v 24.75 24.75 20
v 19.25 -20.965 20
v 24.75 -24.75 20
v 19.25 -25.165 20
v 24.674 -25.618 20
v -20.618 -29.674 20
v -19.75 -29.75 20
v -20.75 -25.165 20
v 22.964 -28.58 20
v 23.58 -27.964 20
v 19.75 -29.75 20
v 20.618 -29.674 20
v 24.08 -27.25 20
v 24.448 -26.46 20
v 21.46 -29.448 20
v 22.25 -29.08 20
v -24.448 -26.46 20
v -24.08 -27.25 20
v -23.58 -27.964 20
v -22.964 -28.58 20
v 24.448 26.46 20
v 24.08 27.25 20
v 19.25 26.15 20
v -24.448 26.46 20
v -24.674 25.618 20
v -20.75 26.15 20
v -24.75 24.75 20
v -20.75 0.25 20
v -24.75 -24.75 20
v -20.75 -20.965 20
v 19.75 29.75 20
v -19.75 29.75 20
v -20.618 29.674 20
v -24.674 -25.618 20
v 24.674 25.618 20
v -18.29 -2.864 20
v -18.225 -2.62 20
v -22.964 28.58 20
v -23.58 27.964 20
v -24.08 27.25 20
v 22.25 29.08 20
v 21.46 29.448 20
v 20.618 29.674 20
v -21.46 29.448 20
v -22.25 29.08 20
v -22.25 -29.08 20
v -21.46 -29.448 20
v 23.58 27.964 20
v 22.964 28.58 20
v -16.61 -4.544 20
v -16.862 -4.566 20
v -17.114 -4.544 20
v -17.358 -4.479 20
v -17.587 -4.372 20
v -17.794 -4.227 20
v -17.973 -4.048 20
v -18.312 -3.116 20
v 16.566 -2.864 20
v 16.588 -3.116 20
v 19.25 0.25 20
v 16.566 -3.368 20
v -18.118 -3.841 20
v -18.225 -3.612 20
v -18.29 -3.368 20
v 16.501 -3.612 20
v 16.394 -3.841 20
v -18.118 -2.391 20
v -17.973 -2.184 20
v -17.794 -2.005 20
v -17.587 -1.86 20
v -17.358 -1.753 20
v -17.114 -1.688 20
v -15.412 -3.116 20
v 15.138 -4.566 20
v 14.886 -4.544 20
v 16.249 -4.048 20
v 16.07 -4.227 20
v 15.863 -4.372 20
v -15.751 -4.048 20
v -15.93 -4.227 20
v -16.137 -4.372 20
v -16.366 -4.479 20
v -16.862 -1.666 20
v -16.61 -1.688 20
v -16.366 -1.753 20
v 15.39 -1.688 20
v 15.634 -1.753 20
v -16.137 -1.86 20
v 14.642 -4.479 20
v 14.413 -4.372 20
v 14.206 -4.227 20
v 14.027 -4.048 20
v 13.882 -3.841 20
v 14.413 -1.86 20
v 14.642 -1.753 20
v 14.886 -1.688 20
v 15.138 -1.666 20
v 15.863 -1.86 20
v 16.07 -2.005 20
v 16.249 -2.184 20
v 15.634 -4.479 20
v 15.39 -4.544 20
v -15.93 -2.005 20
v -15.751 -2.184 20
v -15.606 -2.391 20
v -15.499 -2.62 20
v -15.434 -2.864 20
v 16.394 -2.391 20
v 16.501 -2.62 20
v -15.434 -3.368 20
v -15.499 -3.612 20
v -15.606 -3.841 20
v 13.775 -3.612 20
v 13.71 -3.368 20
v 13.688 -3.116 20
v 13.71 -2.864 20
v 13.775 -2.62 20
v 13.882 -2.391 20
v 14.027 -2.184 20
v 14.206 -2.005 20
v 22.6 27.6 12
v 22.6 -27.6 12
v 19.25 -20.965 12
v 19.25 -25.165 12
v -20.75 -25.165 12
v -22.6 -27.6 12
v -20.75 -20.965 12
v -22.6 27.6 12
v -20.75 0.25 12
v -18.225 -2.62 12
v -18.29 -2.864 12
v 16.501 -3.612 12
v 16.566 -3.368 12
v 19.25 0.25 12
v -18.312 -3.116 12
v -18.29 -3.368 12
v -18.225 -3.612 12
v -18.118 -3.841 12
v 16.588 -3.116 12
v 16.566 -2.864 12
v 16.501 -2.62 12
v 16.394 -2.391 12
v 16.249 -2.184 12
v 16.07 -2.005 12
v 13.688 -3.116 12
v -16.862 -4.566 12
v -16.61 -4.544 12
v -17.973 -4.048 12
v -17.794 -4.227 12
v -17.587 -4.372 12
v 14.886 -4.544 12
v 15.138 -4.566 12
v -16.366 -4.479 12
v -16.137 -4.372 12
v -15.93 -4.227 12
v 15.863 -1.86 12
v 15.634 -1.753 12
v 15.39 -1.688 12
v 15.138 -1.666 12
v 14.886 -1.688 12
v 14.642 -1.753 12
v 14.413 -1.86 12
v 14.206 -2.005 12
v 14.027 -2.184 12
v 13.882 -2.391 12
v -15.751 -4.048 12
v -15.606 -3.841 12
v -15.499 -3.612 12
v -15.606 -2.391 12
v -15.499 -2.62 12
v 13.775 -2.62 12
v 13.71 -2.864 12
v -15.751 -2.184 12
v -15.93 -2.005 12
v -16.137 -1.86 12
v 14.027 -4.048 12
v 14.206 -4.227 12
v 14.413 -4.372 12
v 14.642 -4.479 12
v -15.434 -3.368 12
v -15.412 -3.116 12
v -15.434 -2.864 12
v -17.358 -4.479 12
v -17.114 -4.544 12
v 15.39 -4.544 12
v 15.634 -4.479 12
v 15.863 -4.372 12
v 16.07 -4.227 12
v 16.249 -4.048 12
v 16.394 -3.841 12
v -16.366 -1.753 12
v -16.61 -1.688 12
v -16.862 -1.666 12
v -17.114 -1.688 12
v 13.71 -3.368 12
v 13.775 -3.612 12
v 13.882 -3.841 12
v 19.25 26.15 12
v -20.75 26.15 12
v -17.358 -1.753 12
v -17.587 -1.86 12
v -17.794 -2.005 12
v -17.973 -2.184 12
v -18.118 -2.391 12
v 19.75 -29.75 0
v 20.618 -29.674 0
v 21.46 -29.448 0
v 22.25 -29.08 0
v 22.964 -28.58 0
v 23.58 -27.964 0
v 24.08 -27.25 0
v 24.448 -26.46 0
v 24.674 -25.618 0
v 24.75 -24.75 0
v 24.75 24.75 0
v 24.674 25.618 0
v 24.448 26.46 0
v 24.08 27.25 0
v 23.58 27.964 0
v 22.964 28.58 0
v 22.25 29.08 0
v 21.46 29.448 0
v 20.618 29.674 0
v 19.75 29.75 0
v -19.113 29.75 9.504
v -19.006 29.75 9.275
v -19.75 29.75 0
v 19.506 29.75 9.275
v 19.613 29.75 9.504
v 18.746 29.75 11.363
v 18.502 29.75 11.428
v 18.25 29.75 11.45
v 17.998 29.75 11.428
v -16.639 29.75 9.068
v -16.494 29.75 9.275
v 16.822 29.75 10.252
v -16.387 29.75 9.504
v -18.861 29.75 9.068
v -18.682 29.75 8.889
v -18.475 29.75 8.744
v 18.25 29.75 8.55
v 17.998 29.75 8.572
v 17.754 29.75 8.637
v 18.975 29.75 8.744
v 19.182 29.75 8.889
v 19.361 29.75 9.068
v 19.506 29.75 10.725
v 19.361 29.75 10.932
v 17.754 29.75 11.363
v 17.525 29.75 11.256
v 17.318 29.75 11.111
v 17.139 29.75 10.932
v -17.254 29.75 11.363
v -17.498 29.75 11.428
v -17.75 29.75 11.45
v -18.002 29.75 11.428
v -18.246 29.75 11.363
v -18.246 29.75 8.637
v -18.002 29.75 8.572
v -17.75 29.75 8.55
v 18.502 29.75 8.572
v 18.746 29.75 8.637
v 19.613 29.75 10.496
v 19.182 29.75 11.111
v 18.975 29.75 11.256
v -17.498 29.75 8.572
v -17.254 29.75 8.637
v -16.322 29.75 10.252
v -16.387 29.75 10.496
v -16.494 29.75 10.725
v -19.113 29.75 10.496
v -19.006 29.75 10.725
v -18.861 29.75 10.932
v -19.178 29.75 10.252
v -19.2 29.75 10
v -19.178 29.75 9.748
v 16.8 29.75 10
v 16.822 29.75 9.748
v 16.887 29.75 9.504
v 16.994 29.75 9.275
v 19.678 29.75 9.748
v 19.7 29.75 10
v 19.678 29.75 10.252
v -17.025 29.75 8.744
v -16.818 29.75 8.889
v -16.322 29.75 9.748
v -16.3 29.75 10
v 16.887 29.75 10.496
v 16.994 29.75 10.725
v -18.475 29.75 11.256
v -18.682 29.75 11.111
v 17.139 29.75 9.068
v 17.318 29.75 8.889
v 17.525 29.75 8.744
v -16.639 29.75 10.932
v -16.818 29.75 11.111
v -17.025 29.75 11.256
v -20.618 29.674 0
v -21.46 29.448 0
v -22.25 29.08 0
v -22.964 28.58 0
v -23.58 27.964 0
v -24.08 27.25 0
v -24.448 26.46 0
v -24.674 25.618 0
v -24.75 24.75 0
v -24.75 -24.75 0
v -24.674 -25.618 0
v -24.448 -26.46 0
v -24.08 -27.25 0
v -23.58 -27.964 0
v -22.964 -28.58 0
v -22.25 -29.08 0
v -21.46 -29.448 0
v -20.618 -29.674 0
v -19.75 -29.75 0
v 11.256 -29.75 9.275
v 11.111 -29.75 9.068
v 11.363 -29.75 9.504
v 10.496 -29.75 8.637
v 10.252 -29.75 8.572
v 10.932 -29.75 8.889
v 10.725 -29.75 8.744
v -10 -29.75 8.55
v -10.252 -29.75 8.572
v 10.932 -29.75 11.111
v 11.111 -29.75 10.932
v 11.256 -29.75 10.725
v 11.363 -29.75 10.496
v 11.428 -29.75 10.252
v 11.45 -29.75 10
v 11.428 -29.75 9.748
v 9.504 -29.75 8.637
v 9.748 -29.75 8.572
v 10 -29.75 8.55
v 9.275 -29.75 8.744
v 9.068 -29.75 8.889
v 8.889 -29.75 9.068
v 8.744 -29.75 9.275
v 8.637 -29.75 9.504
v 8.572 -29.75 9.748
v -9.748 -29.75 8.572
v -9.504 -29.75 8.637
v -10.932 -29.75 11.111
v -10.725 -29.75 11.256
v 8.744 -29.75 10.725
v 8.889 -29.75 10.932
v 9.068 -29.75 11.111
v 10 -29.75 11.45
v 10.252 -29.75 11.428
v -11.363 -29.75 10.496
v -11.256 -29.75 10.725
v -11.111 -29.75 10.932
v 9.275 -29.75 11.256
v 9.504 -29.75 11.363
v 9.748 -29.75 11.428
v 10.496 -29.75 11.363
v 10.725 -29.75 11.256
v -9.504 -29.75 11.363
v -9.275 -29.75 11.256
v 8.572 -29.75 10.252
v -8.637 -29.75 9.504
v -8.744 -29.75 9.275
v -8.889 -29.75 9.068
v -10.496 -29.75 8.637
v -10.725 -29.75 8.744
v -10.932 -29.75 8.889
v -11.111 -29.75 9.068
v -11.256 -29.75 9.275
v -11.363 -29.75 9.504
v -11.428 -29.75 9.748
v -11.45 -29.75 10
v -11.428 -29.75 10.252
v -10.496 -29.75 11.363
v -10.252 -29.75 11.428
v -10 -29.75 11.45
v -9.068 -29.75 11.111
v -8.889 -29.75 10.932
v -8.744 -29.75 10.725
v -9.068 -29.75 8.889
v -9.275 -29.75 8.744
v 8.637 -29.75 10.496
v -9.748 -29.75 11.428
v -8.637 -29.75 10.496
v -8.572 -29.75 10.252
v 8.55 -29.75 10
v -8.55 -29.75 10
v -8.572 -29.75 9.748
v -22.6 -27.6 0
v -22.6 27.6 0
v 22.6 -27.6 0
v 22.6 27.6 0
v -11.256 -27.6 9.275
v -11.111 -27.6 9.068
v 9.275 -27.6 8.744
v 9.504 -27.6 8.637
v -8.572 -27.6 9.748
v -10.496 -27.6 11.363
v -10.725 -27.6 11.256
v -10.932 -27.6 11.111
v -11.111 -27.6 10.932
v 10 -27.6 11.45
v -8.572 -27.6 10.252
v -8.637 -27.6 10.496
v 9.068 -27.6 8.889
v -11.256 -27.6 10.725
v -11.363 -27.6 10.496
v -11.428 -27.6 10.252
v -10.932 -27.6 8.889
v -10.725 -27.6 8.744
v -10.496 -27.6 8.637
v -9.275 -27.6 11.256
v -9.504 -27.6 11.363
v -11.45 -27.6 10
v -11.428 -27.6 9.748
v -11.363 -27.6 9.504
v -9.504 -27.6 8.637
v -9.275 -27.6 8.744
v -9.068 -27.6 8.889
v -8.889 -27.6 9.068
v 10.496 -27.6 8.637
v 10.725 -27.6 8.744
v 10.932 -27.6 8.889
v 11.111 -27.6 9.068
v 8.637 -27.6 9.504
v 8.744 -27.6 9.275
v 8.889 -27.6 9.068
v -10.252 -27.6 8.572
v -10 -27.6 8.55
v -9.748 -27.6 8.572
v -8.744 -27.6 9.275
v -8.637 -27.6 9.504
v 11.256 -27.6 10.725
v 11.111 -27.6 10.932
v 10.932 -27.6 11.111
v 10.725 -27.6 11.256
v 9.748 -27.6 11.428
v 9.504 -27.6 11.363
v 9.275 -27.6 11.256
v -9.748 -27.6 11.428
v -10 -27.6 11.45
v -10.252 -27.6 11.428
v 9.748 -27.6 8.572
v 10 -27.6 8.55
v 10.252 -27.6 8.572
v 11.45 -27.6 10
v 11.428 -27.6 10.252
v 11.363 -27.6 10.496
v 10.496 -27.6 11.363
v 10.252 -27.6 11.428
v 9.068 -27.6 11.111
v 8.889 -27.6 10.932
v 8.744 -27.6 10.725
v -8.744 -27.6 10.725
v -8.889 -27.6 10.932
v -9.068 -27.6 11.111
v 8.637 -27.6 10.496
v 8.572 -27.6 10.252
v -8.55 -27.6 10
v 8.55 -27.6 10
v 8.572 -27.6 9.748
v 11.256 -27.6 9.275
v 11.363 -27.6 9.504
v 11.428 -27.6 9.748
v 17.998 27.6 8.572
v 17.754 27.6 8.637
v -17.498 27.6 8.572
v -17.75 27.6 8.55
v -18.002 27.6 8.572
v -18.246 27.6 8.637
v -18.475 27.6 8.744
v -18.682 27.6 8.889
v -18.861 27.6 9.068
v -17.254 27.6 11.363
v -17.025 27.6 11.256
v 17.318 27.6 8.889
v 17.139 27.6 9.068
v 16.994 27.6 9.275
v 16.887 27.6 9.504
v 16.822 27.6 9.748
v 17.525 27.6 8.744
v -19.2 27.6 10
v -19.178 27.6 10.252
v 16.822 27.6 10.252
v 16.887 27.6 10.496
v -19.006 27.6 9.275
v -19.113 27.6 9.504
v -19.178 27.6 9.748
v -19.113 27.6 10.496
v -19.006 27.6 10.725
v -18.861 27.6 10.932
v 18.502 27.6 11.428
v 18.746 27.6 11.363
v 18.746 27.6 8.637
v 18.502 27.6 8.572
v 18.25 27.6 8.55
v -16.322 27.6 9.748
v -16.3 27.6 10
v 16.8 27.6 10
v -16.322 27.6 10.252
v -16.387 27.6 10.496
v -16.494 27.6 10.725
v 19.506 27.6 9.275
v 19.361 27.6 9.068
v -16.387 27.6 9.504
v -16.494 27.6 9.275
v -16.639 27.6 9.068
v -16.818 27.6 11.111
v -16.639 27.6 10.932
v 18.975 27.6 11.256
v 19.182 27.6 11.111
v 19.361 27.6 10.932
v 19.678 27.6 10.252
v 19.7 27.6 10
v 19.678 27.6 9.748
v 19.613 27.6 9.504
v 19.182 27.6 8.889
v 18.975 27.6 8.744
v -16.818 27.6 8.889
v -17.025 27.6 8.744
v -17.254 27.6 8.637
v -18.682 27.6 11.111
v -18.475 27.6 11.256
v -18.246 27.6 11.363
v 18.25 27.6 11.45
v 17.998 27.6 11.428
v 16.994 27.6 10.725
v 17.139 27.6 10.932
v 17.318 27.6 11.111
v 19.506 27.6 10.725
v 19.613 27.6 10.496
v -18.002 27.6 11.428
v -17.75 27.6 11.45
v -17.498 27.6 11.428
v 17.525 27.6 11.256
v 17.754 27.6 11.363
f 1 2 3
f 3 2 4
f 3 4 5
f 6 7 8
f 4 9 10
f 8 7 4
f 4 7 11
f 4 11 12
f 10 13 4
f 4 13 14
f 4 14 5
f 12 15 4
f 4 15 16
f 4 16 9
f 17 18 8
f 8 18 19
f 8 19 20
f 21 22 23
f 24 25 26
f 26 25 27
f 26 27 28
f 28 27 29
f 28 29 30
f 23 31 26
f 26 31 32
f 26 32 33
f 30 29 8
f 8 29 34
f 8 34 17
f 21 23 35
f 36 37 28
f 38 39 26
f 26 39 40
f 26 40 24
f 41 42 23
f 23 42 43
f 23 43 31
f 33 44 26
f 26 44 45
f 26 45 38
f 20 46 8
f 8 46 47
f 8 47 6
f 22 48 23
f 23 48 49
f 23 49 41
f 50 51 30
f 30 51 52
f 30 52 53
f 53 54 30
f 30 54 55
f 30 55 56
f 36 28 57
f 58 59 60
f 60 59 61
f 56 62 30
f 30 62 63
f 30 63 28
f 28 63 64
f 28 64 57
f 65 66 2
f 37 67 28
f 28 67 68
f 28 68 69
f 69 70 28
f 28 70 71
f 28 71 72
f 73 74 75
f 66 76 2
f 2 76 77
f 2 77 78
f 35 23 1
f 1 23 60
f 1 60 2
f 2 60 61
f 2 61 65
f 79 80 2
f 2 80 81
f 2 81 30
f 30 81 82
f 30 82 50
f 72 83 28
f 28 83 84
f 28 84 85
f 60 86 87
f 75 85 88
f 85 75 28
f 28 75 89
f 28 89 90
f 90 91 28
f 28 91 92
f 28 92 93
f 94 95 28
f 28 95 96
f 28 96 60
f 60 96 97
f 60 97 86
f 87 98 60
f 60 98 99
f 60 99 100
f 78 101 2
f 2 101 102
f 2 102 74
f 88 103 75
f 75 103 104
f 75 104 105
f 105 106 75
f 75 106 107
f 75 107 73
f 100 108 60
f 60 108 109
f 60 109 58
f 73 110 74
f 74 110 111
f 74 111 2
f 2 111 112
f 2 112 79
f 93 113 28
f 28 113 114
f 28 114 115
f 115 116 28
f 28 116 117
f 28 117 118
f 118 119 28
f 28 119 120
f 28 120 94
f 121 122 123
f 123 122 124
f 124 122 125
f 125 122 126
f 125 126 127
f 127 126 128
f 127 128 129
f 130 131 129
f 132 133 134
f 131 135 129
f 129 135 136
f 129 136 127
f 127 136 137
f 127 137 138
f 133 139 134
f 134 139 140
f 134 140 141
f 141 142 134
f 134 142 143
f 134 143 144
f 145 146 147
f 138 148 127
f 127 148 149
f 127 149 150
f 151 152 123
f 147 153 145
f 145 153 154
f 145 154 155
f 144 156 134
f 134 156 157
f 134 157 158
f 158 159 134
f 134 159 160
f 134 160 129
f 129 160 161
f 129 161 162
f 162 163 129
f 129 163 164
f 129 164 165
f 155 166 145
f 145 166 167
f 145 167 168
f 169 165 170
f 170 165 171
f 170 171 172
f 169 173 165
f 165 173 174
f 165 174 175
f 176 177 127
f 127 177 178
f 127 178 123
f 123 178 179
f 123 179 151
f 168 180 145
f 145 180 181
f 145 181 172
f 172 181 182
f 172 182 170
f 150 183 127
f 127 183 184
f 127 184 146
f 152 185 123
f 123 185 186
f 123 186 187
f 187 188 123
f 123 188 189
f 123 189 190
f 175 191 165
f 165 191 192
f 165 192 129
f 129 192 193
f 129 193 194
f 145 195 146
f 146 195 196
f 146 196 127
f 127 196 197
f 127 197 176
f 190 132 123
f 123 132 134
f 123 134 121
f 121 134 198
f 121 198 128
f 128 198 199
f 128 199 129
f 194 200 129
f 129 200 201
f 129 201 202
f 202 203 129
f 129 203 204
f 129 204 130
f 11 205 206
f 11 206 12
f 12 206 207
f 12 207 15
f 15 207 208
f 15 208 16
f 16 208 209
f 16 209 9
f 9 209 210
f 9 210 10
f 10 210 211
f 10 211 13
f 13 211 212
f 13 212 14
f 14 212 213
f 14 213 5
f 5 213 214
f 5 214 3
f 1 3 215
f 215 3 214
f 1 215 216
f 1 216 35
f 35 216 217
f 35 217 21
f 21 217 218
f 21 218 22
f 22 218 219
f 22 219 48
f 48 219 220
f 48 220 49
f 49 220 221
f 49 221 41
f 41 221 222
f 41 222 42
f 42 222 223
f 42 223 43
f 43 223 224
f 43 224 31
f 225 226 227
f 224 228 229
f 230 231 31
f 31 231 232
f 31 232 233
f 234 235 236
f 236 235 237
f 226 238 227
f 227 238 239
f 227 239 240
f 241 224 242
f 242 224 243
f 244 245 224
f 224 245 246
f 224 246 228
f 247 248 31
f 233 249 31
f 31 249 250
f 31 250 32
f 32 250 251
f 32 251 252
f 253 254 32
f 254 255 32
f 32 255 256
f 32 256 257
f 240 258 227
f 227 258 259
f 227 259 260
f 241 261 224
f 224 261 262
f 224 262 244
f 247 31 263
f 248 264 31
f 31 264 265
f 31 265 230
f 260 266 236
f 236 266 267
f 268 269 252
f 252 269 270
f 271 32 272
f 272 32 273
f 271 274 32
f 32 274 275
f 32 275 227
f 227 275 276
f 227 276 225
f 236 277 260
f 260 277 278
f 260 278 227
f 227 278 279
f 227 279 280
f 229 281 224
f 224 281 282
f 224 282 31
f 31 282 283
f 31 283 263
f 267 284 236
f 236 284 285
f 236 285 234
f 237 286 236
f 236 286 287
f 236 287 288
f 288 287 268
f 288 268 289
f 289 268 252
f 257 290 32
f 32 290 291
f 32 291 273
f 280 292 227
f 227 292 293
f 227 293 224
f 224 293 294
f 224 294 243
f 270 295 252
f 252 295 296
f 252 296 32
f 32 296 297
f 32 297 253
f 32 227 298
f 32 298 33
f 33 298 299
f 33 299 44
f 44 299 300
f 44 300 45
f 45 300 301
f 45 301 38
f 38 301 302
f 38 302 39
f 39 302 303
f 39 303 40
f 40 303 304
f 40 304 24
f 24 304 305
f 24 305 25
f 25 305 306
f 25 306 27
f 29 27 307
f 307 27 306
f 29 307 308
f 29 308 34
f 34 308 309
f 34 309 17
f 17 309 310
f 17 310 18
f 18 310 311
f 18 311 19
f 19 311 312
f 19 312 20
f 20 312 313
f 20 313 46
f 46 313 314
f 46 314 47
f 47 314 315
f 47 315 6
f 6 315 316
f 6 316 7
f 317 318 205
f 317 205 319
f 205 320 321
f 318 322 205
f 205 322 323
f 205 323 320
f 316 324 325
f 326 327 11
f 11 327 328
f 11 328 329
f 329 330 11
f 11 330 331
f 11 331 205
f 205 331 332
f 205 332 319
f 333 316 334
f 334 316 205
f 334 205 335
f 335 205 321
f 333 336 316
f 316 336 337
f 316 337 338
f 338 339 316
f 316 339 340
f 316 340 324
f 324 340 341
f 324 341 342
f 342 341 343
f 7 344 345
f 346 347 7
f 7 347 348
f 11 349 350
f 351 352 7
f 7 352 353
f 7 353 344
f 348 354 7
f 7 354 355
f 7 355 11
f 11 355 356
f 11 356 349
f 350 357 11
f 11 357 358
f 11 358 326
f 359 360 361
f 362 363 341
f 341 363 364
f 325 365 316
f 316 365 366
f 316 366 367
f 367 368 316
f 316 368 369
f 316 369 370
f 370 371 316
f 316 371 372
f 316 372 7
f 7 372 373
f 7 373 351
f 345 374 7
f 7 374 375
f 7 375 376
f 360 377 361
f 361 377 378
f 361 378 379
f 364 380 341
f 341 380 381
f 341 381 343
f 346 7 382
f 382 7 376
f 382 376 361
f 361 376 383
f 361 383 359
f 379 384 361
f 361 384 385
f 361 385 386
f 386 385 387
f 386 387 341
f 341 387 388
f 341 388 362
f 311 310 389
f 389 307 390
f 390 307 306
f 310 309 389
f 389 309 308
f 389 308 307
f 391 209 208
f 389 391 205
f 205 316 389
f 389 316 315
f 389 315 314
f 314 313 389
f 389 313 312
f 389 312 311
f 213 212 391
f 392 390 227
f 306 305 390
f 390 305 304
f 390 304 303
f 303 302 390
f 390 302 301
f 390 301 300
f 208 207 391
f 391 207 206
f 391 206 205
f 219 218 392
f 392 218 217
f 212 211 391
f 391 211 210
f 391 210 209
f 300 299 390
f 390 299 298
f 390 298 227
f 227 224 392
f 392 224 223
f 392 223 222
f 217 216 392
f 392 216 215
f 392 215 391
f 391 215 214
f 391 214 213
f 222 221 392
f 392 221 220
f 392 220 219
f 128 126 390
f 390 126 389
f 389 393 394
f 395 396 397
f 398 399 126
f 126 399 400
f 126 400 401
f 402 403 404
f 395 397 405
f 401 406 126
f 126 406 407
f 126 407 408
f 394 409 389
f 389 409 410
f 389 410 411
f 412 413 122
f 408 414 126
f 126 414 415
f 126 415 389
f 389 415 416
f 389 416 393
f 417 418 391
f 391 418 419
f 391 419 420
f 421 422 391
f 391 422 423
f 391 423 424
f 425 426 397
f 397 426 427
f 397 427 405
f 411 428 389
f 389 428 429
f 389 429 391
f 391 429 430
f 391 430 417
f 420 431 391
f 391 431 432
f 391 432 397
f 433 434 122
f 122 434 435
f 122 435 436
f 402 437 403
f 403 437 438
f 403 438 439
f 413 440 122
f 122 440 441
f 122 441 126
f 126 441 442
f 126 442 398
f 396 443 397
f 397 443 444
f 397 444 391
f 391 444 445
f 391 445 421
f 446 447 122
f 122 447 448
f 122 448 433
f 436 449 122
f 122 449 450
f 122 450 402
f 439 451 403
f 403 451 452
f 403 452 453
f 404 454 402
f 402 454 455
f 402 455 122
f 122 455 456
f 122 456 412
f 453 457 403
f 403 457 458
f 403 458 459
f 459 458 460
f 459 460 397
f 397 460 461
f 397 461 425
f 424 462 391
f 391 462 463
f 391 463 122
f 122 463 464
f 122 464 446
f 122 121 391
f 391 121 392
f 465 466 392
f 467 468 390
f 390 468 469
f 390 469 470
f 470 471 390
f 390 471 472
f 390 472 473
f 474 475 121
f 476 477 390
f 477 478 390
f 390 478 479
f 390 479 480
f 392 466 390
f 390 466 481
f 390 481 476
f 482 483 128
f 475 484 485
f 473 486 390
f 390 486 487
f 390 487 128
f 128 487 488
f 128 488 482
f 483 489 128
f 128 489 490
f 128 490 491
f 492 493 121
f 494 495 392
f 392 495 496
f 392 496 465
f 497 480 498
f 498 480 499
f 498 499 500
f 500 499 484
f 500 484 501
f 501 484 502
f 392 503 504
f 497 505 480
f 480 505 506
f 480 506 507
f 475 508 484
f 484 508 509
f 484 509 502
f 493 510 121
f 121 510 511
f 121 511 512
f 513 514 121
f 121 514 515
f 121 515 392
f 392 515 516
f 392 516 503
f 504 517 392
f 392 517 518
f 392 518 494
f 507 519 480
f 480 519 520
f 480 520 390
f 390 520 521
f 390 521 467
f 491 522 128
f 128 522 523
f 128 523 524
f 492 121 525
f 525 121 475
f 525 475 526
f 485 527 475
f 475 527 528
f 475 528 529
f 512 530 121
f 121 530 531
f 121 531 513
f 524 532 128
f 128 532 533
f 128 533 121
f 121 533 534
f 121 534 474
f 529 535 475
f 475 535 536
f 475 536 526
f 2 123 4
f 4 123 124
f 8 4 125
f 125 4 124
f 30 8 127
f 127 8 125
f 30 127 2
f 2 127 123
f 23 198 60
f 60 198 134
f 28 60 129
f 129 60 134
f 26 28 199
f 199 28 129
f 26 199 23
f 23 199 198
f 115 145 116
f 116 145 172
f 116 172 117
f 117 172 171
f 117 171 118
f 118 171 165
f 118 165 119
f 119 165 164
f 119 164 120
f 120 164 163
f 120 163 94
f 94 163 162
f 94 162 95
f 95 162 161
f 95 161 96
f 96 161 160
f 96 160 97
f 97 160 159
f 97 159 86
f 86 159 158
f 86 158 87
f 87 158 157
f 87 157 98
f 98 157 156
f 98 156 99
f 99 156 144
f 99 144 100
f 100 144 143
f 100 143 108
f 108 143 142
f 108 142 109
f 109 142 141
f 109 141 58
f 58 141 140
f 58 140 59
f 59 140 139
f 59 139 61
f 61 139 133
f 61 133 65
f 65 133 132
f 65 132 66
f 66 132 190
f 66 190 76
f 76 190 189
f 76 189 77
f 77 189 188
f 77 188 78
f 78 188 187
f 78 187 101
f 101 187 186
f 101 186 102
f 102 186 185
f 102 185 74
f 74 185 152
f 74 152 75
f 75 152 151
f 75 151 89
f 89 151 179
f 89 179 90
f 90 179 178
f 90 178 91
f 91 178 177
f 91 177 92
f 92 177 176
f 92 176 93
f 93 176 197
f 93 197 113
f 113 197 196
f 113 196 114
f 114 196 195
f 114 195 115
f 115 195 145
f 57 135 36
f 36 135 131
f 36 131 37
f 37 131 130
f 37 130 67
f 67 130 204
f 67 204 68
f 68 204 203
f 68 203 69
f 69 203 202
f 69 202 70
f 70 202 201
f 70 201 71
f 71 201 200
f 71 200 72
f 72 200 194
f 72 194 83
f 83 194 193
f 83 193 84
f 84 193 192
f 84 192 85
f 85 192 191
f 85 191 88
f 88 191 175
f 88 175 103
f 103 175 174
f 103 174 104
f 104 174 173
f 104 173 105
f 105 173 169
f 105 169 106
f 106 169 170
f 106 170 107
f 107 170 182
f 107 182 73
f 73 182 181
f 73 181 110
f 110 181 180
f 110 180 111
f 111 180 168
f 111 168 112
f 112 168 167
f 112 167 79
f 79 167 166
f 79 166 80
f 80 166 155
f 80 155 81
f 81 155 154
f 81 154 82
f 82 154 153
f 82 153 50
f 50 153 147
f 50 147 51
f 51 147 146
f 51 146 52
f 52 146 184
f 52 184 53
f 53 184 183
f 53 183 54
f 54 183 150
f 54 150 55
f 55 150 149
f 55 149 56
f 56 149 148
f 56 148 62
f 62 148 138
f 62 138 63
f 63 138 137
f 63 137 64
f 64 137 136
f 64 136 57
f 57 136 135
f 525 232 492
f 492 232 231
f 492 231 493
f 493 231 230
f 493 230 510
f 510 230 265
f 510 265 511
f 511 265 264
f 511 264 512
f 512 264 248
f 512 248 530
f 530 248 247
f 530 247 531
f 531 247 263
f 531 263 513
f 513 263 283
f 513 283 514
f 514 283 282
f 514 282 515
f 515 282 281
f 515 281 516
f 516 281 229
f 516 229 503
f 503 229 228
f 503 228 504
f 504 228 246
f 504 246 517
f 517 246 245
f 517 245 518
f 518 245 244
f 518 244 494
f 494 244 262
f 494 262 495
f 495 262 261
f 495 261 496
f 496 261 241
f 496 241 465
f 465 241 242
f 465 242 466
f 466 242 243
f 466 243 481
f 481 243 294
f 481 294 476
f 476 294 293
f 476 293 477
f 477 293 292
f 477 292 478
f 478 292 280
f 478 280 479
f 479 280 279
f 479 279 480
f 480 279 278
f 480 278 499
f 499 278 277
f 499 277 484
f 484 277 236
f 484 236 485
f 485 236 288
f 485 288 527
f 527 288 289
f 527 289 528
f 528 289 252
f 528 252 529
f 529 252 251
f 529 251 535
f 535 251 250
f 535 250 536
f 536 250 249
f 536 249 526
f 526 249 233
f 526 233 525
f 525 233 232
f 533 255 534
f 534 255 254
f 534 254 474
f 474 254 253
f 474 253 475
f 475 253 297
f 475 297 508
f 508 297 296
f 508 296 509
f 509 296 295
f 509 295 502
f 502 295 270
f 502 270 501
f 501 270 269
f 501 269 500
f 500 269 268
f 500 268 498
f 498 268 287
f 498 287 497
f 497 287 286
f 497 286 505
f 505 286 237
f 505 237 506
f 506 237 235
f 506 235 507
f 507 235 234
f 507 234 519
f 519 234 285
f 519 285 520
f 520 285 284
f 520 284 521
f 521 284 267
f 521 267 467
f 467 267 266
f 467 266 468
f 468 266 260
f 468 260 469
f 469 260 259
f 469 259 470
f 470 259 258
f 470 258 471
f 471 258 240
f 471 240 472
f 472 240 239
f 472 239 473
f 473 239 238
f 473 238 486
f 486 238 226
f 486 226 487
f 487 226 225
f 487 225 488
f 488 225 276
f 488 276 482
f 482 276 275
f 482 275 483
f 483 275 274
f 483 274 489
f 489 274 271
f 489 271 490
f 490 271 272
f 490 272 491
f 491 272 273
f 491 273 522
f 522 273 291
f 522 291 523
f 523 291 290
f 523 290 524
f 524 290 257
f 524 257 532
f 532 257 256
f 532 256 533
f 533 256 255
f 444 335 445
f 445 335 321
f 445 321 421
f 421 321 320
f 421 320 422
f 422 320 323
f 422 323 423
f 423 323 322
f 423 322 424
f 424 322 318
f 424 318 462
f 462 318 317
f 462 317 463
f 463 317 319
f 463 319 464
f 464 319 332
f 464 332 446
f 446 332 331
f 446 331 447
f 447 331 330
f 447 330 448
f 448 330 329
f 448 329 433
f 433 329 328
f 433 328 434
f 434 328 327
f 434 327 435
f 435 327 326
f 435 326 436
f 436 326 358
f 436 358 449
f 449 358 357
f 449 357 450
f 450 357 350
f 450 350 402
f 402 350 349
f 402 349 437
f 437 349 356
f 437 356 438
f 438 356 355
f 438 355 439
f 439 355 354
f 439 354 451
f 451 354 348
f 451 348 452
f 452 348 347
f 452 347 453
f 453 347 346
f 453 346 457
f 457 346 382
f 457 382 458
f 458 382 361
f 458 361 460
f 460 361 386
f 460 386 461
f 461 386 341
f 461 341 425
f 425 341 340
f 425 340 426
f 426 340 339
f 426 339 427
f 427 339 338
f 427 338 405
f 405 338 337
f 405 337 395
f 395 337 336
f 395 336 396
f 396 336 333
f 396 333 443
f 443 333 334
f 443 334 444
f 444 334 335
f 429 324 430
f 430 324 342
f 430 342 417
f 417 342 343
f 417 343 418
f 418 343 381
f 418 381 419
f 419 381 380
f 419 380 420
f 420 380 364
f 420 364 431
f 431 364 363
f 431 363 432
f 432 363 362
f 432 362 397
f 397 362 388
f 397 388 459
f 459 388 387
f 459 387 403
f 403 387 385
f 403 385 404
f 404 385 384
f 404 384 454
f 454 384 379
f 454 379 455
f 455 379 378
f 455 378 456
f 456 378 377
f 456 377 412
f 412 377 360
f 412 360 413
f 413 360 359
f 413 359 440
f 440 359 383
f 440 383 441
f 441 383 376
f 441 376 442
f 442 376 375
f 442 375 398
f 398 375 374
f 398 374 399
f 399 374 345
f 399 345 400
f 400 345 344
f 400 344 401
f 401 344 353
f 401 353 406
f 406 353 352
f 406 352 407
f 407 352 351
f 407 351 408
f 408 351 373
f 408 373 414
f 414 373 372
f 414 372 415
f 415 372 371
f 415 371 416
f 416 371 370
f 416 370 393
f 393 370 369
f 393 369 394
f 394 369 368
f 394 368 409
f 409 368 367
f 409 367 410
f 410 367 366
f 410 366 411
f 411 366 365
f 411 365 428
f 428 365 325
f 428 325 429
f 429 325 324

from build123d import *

# Parameters (mm, degrees)
EXTRUDE_1_DEPTH     = 20
SKETCH_2_W          = 45.2
SKETCH_2_H          = 55.2
CUT_EXTRUDE_1_DEPTH = 12
SKETCH_4_W          = 40
SKETCH_4_H          = 25.9
SKETCH_4_H_2        = 4.2
CUT_EXTRUDE_2_DEPTH = 21
SKETCH_6_R          = 1.45
CUT_EXTRUDE_4_DEPTH = 9
SKETCH_8_R          = 1.45
CUT_EXTRUDE_6_DEPTH = 6
SKETCH_9_R          = 1.45
CUT_EXTRUDE_7_DEPTH = 6


with BuildPart() as part:
    # 草图1 → 凸台-拉伸1 (new body)
    with BuildSketch(Plane.XY):
        with BuildLine():
            Line((-19.75, 29.75), (19.75, 29.75))
            ThreePointArc((19.75, 29.75), (23.285533906, 28.285533906), (24.75, 24.75))
            Line((24.75, 24.75), (24.75, -24.75))
            ThreePointArc((24.75, -24.75), (23.285533906, -28.285533906), (19.75, -29.75))
            Line((19.75, -29.75), (-19.75, -29.75))
            ThreePointArc((-19.75, -29.75), (-23.285533906, -28.285533906), (-24.75, -24.75))
            Line((-24.75, -24.75), (-24.75, 24.75))
            ThreePointArc((-24.75, 24.75), (-23.285533906, 28.285533906), (-19.75, 29.75))
        make_face()
    extrude(amount=EXTRUDE_1_DEPTH)

    # 草图2 → 切除-拉伸1 (cut)
    with BuildSketch(Plane(origin=(0, 0, 0), x_dir=(-1, 0, 0), z_dir=(0, 0, -1))):
        Rectangle(SKETCH_2_W, SKETCH_2_H)
    extrude(amount=-CUT_EXTRUDE_1_DEPTH, mode=Mode.SUBTRACT)

    # 草图4 → 切除-拉伸2 (cut, through all)
    with BuildSketch(Plane.XY.offset(20)):
        with Locations((-0.75, 13.2)):
            Rectangle(SKETCH_4_W, SKETCH_4_H)
        with Locations((-0.75, -23.065049662)):
            Rectangle(SKETCH_4_W, SKETCH_4_H_2)
    extrude(amount=-CUT_EXTRUDE_2_DEPTH, mode=Mode.SUBTRACT)

    # 草图6 → 切除-拉伸4 (cut, through all)
    with BuildSketch(Plane(origin=(0, 0, 12), x_dir=(-1, 0, 0), z_dir=(0, 0, -1))):
        with Locations((16.862, -3.116)):
            Circle(SKETCH_6_R)
        with Locations((-15.138, -3.116)):
            Circle(SKETCH_6_R)
    extrude(amount=-CUT_EXTRUDE_4_DEPTH, mode=Mode.SUBTRACT)

    # 草图8 → 切除-拉伸6 (cut)
    with BuildSketch(Plane(origin=(0, 29.75, 0), x_dir=(1, 0, 0), z_dir=(0, 1, 0))):
        with Locations((-17.75, -10)):
            Circle(SKETCH_8_R)
        with Locations((18.25, -10)):
            Circle(SKETCH_8_R)
    extrude(amount=-CUT_EXTRUDE_6_DEPTH, mode=Mode.SUBTRACT)

    # 草图9 → 切除-拉伸7 (cut)
    with BuildSketch(Plane.XZ.offset(29.75)):
        with Locations((-10, 10)):
            Circle(SKETCH_9_R)
        with Locations((10, 10)):
            Circle(SKETCH_9_R)
    extrude(amount=-CUT_EXTRUDE_7_DEPTH, mode=Mode.SUBTRACT)


solid = part.part
